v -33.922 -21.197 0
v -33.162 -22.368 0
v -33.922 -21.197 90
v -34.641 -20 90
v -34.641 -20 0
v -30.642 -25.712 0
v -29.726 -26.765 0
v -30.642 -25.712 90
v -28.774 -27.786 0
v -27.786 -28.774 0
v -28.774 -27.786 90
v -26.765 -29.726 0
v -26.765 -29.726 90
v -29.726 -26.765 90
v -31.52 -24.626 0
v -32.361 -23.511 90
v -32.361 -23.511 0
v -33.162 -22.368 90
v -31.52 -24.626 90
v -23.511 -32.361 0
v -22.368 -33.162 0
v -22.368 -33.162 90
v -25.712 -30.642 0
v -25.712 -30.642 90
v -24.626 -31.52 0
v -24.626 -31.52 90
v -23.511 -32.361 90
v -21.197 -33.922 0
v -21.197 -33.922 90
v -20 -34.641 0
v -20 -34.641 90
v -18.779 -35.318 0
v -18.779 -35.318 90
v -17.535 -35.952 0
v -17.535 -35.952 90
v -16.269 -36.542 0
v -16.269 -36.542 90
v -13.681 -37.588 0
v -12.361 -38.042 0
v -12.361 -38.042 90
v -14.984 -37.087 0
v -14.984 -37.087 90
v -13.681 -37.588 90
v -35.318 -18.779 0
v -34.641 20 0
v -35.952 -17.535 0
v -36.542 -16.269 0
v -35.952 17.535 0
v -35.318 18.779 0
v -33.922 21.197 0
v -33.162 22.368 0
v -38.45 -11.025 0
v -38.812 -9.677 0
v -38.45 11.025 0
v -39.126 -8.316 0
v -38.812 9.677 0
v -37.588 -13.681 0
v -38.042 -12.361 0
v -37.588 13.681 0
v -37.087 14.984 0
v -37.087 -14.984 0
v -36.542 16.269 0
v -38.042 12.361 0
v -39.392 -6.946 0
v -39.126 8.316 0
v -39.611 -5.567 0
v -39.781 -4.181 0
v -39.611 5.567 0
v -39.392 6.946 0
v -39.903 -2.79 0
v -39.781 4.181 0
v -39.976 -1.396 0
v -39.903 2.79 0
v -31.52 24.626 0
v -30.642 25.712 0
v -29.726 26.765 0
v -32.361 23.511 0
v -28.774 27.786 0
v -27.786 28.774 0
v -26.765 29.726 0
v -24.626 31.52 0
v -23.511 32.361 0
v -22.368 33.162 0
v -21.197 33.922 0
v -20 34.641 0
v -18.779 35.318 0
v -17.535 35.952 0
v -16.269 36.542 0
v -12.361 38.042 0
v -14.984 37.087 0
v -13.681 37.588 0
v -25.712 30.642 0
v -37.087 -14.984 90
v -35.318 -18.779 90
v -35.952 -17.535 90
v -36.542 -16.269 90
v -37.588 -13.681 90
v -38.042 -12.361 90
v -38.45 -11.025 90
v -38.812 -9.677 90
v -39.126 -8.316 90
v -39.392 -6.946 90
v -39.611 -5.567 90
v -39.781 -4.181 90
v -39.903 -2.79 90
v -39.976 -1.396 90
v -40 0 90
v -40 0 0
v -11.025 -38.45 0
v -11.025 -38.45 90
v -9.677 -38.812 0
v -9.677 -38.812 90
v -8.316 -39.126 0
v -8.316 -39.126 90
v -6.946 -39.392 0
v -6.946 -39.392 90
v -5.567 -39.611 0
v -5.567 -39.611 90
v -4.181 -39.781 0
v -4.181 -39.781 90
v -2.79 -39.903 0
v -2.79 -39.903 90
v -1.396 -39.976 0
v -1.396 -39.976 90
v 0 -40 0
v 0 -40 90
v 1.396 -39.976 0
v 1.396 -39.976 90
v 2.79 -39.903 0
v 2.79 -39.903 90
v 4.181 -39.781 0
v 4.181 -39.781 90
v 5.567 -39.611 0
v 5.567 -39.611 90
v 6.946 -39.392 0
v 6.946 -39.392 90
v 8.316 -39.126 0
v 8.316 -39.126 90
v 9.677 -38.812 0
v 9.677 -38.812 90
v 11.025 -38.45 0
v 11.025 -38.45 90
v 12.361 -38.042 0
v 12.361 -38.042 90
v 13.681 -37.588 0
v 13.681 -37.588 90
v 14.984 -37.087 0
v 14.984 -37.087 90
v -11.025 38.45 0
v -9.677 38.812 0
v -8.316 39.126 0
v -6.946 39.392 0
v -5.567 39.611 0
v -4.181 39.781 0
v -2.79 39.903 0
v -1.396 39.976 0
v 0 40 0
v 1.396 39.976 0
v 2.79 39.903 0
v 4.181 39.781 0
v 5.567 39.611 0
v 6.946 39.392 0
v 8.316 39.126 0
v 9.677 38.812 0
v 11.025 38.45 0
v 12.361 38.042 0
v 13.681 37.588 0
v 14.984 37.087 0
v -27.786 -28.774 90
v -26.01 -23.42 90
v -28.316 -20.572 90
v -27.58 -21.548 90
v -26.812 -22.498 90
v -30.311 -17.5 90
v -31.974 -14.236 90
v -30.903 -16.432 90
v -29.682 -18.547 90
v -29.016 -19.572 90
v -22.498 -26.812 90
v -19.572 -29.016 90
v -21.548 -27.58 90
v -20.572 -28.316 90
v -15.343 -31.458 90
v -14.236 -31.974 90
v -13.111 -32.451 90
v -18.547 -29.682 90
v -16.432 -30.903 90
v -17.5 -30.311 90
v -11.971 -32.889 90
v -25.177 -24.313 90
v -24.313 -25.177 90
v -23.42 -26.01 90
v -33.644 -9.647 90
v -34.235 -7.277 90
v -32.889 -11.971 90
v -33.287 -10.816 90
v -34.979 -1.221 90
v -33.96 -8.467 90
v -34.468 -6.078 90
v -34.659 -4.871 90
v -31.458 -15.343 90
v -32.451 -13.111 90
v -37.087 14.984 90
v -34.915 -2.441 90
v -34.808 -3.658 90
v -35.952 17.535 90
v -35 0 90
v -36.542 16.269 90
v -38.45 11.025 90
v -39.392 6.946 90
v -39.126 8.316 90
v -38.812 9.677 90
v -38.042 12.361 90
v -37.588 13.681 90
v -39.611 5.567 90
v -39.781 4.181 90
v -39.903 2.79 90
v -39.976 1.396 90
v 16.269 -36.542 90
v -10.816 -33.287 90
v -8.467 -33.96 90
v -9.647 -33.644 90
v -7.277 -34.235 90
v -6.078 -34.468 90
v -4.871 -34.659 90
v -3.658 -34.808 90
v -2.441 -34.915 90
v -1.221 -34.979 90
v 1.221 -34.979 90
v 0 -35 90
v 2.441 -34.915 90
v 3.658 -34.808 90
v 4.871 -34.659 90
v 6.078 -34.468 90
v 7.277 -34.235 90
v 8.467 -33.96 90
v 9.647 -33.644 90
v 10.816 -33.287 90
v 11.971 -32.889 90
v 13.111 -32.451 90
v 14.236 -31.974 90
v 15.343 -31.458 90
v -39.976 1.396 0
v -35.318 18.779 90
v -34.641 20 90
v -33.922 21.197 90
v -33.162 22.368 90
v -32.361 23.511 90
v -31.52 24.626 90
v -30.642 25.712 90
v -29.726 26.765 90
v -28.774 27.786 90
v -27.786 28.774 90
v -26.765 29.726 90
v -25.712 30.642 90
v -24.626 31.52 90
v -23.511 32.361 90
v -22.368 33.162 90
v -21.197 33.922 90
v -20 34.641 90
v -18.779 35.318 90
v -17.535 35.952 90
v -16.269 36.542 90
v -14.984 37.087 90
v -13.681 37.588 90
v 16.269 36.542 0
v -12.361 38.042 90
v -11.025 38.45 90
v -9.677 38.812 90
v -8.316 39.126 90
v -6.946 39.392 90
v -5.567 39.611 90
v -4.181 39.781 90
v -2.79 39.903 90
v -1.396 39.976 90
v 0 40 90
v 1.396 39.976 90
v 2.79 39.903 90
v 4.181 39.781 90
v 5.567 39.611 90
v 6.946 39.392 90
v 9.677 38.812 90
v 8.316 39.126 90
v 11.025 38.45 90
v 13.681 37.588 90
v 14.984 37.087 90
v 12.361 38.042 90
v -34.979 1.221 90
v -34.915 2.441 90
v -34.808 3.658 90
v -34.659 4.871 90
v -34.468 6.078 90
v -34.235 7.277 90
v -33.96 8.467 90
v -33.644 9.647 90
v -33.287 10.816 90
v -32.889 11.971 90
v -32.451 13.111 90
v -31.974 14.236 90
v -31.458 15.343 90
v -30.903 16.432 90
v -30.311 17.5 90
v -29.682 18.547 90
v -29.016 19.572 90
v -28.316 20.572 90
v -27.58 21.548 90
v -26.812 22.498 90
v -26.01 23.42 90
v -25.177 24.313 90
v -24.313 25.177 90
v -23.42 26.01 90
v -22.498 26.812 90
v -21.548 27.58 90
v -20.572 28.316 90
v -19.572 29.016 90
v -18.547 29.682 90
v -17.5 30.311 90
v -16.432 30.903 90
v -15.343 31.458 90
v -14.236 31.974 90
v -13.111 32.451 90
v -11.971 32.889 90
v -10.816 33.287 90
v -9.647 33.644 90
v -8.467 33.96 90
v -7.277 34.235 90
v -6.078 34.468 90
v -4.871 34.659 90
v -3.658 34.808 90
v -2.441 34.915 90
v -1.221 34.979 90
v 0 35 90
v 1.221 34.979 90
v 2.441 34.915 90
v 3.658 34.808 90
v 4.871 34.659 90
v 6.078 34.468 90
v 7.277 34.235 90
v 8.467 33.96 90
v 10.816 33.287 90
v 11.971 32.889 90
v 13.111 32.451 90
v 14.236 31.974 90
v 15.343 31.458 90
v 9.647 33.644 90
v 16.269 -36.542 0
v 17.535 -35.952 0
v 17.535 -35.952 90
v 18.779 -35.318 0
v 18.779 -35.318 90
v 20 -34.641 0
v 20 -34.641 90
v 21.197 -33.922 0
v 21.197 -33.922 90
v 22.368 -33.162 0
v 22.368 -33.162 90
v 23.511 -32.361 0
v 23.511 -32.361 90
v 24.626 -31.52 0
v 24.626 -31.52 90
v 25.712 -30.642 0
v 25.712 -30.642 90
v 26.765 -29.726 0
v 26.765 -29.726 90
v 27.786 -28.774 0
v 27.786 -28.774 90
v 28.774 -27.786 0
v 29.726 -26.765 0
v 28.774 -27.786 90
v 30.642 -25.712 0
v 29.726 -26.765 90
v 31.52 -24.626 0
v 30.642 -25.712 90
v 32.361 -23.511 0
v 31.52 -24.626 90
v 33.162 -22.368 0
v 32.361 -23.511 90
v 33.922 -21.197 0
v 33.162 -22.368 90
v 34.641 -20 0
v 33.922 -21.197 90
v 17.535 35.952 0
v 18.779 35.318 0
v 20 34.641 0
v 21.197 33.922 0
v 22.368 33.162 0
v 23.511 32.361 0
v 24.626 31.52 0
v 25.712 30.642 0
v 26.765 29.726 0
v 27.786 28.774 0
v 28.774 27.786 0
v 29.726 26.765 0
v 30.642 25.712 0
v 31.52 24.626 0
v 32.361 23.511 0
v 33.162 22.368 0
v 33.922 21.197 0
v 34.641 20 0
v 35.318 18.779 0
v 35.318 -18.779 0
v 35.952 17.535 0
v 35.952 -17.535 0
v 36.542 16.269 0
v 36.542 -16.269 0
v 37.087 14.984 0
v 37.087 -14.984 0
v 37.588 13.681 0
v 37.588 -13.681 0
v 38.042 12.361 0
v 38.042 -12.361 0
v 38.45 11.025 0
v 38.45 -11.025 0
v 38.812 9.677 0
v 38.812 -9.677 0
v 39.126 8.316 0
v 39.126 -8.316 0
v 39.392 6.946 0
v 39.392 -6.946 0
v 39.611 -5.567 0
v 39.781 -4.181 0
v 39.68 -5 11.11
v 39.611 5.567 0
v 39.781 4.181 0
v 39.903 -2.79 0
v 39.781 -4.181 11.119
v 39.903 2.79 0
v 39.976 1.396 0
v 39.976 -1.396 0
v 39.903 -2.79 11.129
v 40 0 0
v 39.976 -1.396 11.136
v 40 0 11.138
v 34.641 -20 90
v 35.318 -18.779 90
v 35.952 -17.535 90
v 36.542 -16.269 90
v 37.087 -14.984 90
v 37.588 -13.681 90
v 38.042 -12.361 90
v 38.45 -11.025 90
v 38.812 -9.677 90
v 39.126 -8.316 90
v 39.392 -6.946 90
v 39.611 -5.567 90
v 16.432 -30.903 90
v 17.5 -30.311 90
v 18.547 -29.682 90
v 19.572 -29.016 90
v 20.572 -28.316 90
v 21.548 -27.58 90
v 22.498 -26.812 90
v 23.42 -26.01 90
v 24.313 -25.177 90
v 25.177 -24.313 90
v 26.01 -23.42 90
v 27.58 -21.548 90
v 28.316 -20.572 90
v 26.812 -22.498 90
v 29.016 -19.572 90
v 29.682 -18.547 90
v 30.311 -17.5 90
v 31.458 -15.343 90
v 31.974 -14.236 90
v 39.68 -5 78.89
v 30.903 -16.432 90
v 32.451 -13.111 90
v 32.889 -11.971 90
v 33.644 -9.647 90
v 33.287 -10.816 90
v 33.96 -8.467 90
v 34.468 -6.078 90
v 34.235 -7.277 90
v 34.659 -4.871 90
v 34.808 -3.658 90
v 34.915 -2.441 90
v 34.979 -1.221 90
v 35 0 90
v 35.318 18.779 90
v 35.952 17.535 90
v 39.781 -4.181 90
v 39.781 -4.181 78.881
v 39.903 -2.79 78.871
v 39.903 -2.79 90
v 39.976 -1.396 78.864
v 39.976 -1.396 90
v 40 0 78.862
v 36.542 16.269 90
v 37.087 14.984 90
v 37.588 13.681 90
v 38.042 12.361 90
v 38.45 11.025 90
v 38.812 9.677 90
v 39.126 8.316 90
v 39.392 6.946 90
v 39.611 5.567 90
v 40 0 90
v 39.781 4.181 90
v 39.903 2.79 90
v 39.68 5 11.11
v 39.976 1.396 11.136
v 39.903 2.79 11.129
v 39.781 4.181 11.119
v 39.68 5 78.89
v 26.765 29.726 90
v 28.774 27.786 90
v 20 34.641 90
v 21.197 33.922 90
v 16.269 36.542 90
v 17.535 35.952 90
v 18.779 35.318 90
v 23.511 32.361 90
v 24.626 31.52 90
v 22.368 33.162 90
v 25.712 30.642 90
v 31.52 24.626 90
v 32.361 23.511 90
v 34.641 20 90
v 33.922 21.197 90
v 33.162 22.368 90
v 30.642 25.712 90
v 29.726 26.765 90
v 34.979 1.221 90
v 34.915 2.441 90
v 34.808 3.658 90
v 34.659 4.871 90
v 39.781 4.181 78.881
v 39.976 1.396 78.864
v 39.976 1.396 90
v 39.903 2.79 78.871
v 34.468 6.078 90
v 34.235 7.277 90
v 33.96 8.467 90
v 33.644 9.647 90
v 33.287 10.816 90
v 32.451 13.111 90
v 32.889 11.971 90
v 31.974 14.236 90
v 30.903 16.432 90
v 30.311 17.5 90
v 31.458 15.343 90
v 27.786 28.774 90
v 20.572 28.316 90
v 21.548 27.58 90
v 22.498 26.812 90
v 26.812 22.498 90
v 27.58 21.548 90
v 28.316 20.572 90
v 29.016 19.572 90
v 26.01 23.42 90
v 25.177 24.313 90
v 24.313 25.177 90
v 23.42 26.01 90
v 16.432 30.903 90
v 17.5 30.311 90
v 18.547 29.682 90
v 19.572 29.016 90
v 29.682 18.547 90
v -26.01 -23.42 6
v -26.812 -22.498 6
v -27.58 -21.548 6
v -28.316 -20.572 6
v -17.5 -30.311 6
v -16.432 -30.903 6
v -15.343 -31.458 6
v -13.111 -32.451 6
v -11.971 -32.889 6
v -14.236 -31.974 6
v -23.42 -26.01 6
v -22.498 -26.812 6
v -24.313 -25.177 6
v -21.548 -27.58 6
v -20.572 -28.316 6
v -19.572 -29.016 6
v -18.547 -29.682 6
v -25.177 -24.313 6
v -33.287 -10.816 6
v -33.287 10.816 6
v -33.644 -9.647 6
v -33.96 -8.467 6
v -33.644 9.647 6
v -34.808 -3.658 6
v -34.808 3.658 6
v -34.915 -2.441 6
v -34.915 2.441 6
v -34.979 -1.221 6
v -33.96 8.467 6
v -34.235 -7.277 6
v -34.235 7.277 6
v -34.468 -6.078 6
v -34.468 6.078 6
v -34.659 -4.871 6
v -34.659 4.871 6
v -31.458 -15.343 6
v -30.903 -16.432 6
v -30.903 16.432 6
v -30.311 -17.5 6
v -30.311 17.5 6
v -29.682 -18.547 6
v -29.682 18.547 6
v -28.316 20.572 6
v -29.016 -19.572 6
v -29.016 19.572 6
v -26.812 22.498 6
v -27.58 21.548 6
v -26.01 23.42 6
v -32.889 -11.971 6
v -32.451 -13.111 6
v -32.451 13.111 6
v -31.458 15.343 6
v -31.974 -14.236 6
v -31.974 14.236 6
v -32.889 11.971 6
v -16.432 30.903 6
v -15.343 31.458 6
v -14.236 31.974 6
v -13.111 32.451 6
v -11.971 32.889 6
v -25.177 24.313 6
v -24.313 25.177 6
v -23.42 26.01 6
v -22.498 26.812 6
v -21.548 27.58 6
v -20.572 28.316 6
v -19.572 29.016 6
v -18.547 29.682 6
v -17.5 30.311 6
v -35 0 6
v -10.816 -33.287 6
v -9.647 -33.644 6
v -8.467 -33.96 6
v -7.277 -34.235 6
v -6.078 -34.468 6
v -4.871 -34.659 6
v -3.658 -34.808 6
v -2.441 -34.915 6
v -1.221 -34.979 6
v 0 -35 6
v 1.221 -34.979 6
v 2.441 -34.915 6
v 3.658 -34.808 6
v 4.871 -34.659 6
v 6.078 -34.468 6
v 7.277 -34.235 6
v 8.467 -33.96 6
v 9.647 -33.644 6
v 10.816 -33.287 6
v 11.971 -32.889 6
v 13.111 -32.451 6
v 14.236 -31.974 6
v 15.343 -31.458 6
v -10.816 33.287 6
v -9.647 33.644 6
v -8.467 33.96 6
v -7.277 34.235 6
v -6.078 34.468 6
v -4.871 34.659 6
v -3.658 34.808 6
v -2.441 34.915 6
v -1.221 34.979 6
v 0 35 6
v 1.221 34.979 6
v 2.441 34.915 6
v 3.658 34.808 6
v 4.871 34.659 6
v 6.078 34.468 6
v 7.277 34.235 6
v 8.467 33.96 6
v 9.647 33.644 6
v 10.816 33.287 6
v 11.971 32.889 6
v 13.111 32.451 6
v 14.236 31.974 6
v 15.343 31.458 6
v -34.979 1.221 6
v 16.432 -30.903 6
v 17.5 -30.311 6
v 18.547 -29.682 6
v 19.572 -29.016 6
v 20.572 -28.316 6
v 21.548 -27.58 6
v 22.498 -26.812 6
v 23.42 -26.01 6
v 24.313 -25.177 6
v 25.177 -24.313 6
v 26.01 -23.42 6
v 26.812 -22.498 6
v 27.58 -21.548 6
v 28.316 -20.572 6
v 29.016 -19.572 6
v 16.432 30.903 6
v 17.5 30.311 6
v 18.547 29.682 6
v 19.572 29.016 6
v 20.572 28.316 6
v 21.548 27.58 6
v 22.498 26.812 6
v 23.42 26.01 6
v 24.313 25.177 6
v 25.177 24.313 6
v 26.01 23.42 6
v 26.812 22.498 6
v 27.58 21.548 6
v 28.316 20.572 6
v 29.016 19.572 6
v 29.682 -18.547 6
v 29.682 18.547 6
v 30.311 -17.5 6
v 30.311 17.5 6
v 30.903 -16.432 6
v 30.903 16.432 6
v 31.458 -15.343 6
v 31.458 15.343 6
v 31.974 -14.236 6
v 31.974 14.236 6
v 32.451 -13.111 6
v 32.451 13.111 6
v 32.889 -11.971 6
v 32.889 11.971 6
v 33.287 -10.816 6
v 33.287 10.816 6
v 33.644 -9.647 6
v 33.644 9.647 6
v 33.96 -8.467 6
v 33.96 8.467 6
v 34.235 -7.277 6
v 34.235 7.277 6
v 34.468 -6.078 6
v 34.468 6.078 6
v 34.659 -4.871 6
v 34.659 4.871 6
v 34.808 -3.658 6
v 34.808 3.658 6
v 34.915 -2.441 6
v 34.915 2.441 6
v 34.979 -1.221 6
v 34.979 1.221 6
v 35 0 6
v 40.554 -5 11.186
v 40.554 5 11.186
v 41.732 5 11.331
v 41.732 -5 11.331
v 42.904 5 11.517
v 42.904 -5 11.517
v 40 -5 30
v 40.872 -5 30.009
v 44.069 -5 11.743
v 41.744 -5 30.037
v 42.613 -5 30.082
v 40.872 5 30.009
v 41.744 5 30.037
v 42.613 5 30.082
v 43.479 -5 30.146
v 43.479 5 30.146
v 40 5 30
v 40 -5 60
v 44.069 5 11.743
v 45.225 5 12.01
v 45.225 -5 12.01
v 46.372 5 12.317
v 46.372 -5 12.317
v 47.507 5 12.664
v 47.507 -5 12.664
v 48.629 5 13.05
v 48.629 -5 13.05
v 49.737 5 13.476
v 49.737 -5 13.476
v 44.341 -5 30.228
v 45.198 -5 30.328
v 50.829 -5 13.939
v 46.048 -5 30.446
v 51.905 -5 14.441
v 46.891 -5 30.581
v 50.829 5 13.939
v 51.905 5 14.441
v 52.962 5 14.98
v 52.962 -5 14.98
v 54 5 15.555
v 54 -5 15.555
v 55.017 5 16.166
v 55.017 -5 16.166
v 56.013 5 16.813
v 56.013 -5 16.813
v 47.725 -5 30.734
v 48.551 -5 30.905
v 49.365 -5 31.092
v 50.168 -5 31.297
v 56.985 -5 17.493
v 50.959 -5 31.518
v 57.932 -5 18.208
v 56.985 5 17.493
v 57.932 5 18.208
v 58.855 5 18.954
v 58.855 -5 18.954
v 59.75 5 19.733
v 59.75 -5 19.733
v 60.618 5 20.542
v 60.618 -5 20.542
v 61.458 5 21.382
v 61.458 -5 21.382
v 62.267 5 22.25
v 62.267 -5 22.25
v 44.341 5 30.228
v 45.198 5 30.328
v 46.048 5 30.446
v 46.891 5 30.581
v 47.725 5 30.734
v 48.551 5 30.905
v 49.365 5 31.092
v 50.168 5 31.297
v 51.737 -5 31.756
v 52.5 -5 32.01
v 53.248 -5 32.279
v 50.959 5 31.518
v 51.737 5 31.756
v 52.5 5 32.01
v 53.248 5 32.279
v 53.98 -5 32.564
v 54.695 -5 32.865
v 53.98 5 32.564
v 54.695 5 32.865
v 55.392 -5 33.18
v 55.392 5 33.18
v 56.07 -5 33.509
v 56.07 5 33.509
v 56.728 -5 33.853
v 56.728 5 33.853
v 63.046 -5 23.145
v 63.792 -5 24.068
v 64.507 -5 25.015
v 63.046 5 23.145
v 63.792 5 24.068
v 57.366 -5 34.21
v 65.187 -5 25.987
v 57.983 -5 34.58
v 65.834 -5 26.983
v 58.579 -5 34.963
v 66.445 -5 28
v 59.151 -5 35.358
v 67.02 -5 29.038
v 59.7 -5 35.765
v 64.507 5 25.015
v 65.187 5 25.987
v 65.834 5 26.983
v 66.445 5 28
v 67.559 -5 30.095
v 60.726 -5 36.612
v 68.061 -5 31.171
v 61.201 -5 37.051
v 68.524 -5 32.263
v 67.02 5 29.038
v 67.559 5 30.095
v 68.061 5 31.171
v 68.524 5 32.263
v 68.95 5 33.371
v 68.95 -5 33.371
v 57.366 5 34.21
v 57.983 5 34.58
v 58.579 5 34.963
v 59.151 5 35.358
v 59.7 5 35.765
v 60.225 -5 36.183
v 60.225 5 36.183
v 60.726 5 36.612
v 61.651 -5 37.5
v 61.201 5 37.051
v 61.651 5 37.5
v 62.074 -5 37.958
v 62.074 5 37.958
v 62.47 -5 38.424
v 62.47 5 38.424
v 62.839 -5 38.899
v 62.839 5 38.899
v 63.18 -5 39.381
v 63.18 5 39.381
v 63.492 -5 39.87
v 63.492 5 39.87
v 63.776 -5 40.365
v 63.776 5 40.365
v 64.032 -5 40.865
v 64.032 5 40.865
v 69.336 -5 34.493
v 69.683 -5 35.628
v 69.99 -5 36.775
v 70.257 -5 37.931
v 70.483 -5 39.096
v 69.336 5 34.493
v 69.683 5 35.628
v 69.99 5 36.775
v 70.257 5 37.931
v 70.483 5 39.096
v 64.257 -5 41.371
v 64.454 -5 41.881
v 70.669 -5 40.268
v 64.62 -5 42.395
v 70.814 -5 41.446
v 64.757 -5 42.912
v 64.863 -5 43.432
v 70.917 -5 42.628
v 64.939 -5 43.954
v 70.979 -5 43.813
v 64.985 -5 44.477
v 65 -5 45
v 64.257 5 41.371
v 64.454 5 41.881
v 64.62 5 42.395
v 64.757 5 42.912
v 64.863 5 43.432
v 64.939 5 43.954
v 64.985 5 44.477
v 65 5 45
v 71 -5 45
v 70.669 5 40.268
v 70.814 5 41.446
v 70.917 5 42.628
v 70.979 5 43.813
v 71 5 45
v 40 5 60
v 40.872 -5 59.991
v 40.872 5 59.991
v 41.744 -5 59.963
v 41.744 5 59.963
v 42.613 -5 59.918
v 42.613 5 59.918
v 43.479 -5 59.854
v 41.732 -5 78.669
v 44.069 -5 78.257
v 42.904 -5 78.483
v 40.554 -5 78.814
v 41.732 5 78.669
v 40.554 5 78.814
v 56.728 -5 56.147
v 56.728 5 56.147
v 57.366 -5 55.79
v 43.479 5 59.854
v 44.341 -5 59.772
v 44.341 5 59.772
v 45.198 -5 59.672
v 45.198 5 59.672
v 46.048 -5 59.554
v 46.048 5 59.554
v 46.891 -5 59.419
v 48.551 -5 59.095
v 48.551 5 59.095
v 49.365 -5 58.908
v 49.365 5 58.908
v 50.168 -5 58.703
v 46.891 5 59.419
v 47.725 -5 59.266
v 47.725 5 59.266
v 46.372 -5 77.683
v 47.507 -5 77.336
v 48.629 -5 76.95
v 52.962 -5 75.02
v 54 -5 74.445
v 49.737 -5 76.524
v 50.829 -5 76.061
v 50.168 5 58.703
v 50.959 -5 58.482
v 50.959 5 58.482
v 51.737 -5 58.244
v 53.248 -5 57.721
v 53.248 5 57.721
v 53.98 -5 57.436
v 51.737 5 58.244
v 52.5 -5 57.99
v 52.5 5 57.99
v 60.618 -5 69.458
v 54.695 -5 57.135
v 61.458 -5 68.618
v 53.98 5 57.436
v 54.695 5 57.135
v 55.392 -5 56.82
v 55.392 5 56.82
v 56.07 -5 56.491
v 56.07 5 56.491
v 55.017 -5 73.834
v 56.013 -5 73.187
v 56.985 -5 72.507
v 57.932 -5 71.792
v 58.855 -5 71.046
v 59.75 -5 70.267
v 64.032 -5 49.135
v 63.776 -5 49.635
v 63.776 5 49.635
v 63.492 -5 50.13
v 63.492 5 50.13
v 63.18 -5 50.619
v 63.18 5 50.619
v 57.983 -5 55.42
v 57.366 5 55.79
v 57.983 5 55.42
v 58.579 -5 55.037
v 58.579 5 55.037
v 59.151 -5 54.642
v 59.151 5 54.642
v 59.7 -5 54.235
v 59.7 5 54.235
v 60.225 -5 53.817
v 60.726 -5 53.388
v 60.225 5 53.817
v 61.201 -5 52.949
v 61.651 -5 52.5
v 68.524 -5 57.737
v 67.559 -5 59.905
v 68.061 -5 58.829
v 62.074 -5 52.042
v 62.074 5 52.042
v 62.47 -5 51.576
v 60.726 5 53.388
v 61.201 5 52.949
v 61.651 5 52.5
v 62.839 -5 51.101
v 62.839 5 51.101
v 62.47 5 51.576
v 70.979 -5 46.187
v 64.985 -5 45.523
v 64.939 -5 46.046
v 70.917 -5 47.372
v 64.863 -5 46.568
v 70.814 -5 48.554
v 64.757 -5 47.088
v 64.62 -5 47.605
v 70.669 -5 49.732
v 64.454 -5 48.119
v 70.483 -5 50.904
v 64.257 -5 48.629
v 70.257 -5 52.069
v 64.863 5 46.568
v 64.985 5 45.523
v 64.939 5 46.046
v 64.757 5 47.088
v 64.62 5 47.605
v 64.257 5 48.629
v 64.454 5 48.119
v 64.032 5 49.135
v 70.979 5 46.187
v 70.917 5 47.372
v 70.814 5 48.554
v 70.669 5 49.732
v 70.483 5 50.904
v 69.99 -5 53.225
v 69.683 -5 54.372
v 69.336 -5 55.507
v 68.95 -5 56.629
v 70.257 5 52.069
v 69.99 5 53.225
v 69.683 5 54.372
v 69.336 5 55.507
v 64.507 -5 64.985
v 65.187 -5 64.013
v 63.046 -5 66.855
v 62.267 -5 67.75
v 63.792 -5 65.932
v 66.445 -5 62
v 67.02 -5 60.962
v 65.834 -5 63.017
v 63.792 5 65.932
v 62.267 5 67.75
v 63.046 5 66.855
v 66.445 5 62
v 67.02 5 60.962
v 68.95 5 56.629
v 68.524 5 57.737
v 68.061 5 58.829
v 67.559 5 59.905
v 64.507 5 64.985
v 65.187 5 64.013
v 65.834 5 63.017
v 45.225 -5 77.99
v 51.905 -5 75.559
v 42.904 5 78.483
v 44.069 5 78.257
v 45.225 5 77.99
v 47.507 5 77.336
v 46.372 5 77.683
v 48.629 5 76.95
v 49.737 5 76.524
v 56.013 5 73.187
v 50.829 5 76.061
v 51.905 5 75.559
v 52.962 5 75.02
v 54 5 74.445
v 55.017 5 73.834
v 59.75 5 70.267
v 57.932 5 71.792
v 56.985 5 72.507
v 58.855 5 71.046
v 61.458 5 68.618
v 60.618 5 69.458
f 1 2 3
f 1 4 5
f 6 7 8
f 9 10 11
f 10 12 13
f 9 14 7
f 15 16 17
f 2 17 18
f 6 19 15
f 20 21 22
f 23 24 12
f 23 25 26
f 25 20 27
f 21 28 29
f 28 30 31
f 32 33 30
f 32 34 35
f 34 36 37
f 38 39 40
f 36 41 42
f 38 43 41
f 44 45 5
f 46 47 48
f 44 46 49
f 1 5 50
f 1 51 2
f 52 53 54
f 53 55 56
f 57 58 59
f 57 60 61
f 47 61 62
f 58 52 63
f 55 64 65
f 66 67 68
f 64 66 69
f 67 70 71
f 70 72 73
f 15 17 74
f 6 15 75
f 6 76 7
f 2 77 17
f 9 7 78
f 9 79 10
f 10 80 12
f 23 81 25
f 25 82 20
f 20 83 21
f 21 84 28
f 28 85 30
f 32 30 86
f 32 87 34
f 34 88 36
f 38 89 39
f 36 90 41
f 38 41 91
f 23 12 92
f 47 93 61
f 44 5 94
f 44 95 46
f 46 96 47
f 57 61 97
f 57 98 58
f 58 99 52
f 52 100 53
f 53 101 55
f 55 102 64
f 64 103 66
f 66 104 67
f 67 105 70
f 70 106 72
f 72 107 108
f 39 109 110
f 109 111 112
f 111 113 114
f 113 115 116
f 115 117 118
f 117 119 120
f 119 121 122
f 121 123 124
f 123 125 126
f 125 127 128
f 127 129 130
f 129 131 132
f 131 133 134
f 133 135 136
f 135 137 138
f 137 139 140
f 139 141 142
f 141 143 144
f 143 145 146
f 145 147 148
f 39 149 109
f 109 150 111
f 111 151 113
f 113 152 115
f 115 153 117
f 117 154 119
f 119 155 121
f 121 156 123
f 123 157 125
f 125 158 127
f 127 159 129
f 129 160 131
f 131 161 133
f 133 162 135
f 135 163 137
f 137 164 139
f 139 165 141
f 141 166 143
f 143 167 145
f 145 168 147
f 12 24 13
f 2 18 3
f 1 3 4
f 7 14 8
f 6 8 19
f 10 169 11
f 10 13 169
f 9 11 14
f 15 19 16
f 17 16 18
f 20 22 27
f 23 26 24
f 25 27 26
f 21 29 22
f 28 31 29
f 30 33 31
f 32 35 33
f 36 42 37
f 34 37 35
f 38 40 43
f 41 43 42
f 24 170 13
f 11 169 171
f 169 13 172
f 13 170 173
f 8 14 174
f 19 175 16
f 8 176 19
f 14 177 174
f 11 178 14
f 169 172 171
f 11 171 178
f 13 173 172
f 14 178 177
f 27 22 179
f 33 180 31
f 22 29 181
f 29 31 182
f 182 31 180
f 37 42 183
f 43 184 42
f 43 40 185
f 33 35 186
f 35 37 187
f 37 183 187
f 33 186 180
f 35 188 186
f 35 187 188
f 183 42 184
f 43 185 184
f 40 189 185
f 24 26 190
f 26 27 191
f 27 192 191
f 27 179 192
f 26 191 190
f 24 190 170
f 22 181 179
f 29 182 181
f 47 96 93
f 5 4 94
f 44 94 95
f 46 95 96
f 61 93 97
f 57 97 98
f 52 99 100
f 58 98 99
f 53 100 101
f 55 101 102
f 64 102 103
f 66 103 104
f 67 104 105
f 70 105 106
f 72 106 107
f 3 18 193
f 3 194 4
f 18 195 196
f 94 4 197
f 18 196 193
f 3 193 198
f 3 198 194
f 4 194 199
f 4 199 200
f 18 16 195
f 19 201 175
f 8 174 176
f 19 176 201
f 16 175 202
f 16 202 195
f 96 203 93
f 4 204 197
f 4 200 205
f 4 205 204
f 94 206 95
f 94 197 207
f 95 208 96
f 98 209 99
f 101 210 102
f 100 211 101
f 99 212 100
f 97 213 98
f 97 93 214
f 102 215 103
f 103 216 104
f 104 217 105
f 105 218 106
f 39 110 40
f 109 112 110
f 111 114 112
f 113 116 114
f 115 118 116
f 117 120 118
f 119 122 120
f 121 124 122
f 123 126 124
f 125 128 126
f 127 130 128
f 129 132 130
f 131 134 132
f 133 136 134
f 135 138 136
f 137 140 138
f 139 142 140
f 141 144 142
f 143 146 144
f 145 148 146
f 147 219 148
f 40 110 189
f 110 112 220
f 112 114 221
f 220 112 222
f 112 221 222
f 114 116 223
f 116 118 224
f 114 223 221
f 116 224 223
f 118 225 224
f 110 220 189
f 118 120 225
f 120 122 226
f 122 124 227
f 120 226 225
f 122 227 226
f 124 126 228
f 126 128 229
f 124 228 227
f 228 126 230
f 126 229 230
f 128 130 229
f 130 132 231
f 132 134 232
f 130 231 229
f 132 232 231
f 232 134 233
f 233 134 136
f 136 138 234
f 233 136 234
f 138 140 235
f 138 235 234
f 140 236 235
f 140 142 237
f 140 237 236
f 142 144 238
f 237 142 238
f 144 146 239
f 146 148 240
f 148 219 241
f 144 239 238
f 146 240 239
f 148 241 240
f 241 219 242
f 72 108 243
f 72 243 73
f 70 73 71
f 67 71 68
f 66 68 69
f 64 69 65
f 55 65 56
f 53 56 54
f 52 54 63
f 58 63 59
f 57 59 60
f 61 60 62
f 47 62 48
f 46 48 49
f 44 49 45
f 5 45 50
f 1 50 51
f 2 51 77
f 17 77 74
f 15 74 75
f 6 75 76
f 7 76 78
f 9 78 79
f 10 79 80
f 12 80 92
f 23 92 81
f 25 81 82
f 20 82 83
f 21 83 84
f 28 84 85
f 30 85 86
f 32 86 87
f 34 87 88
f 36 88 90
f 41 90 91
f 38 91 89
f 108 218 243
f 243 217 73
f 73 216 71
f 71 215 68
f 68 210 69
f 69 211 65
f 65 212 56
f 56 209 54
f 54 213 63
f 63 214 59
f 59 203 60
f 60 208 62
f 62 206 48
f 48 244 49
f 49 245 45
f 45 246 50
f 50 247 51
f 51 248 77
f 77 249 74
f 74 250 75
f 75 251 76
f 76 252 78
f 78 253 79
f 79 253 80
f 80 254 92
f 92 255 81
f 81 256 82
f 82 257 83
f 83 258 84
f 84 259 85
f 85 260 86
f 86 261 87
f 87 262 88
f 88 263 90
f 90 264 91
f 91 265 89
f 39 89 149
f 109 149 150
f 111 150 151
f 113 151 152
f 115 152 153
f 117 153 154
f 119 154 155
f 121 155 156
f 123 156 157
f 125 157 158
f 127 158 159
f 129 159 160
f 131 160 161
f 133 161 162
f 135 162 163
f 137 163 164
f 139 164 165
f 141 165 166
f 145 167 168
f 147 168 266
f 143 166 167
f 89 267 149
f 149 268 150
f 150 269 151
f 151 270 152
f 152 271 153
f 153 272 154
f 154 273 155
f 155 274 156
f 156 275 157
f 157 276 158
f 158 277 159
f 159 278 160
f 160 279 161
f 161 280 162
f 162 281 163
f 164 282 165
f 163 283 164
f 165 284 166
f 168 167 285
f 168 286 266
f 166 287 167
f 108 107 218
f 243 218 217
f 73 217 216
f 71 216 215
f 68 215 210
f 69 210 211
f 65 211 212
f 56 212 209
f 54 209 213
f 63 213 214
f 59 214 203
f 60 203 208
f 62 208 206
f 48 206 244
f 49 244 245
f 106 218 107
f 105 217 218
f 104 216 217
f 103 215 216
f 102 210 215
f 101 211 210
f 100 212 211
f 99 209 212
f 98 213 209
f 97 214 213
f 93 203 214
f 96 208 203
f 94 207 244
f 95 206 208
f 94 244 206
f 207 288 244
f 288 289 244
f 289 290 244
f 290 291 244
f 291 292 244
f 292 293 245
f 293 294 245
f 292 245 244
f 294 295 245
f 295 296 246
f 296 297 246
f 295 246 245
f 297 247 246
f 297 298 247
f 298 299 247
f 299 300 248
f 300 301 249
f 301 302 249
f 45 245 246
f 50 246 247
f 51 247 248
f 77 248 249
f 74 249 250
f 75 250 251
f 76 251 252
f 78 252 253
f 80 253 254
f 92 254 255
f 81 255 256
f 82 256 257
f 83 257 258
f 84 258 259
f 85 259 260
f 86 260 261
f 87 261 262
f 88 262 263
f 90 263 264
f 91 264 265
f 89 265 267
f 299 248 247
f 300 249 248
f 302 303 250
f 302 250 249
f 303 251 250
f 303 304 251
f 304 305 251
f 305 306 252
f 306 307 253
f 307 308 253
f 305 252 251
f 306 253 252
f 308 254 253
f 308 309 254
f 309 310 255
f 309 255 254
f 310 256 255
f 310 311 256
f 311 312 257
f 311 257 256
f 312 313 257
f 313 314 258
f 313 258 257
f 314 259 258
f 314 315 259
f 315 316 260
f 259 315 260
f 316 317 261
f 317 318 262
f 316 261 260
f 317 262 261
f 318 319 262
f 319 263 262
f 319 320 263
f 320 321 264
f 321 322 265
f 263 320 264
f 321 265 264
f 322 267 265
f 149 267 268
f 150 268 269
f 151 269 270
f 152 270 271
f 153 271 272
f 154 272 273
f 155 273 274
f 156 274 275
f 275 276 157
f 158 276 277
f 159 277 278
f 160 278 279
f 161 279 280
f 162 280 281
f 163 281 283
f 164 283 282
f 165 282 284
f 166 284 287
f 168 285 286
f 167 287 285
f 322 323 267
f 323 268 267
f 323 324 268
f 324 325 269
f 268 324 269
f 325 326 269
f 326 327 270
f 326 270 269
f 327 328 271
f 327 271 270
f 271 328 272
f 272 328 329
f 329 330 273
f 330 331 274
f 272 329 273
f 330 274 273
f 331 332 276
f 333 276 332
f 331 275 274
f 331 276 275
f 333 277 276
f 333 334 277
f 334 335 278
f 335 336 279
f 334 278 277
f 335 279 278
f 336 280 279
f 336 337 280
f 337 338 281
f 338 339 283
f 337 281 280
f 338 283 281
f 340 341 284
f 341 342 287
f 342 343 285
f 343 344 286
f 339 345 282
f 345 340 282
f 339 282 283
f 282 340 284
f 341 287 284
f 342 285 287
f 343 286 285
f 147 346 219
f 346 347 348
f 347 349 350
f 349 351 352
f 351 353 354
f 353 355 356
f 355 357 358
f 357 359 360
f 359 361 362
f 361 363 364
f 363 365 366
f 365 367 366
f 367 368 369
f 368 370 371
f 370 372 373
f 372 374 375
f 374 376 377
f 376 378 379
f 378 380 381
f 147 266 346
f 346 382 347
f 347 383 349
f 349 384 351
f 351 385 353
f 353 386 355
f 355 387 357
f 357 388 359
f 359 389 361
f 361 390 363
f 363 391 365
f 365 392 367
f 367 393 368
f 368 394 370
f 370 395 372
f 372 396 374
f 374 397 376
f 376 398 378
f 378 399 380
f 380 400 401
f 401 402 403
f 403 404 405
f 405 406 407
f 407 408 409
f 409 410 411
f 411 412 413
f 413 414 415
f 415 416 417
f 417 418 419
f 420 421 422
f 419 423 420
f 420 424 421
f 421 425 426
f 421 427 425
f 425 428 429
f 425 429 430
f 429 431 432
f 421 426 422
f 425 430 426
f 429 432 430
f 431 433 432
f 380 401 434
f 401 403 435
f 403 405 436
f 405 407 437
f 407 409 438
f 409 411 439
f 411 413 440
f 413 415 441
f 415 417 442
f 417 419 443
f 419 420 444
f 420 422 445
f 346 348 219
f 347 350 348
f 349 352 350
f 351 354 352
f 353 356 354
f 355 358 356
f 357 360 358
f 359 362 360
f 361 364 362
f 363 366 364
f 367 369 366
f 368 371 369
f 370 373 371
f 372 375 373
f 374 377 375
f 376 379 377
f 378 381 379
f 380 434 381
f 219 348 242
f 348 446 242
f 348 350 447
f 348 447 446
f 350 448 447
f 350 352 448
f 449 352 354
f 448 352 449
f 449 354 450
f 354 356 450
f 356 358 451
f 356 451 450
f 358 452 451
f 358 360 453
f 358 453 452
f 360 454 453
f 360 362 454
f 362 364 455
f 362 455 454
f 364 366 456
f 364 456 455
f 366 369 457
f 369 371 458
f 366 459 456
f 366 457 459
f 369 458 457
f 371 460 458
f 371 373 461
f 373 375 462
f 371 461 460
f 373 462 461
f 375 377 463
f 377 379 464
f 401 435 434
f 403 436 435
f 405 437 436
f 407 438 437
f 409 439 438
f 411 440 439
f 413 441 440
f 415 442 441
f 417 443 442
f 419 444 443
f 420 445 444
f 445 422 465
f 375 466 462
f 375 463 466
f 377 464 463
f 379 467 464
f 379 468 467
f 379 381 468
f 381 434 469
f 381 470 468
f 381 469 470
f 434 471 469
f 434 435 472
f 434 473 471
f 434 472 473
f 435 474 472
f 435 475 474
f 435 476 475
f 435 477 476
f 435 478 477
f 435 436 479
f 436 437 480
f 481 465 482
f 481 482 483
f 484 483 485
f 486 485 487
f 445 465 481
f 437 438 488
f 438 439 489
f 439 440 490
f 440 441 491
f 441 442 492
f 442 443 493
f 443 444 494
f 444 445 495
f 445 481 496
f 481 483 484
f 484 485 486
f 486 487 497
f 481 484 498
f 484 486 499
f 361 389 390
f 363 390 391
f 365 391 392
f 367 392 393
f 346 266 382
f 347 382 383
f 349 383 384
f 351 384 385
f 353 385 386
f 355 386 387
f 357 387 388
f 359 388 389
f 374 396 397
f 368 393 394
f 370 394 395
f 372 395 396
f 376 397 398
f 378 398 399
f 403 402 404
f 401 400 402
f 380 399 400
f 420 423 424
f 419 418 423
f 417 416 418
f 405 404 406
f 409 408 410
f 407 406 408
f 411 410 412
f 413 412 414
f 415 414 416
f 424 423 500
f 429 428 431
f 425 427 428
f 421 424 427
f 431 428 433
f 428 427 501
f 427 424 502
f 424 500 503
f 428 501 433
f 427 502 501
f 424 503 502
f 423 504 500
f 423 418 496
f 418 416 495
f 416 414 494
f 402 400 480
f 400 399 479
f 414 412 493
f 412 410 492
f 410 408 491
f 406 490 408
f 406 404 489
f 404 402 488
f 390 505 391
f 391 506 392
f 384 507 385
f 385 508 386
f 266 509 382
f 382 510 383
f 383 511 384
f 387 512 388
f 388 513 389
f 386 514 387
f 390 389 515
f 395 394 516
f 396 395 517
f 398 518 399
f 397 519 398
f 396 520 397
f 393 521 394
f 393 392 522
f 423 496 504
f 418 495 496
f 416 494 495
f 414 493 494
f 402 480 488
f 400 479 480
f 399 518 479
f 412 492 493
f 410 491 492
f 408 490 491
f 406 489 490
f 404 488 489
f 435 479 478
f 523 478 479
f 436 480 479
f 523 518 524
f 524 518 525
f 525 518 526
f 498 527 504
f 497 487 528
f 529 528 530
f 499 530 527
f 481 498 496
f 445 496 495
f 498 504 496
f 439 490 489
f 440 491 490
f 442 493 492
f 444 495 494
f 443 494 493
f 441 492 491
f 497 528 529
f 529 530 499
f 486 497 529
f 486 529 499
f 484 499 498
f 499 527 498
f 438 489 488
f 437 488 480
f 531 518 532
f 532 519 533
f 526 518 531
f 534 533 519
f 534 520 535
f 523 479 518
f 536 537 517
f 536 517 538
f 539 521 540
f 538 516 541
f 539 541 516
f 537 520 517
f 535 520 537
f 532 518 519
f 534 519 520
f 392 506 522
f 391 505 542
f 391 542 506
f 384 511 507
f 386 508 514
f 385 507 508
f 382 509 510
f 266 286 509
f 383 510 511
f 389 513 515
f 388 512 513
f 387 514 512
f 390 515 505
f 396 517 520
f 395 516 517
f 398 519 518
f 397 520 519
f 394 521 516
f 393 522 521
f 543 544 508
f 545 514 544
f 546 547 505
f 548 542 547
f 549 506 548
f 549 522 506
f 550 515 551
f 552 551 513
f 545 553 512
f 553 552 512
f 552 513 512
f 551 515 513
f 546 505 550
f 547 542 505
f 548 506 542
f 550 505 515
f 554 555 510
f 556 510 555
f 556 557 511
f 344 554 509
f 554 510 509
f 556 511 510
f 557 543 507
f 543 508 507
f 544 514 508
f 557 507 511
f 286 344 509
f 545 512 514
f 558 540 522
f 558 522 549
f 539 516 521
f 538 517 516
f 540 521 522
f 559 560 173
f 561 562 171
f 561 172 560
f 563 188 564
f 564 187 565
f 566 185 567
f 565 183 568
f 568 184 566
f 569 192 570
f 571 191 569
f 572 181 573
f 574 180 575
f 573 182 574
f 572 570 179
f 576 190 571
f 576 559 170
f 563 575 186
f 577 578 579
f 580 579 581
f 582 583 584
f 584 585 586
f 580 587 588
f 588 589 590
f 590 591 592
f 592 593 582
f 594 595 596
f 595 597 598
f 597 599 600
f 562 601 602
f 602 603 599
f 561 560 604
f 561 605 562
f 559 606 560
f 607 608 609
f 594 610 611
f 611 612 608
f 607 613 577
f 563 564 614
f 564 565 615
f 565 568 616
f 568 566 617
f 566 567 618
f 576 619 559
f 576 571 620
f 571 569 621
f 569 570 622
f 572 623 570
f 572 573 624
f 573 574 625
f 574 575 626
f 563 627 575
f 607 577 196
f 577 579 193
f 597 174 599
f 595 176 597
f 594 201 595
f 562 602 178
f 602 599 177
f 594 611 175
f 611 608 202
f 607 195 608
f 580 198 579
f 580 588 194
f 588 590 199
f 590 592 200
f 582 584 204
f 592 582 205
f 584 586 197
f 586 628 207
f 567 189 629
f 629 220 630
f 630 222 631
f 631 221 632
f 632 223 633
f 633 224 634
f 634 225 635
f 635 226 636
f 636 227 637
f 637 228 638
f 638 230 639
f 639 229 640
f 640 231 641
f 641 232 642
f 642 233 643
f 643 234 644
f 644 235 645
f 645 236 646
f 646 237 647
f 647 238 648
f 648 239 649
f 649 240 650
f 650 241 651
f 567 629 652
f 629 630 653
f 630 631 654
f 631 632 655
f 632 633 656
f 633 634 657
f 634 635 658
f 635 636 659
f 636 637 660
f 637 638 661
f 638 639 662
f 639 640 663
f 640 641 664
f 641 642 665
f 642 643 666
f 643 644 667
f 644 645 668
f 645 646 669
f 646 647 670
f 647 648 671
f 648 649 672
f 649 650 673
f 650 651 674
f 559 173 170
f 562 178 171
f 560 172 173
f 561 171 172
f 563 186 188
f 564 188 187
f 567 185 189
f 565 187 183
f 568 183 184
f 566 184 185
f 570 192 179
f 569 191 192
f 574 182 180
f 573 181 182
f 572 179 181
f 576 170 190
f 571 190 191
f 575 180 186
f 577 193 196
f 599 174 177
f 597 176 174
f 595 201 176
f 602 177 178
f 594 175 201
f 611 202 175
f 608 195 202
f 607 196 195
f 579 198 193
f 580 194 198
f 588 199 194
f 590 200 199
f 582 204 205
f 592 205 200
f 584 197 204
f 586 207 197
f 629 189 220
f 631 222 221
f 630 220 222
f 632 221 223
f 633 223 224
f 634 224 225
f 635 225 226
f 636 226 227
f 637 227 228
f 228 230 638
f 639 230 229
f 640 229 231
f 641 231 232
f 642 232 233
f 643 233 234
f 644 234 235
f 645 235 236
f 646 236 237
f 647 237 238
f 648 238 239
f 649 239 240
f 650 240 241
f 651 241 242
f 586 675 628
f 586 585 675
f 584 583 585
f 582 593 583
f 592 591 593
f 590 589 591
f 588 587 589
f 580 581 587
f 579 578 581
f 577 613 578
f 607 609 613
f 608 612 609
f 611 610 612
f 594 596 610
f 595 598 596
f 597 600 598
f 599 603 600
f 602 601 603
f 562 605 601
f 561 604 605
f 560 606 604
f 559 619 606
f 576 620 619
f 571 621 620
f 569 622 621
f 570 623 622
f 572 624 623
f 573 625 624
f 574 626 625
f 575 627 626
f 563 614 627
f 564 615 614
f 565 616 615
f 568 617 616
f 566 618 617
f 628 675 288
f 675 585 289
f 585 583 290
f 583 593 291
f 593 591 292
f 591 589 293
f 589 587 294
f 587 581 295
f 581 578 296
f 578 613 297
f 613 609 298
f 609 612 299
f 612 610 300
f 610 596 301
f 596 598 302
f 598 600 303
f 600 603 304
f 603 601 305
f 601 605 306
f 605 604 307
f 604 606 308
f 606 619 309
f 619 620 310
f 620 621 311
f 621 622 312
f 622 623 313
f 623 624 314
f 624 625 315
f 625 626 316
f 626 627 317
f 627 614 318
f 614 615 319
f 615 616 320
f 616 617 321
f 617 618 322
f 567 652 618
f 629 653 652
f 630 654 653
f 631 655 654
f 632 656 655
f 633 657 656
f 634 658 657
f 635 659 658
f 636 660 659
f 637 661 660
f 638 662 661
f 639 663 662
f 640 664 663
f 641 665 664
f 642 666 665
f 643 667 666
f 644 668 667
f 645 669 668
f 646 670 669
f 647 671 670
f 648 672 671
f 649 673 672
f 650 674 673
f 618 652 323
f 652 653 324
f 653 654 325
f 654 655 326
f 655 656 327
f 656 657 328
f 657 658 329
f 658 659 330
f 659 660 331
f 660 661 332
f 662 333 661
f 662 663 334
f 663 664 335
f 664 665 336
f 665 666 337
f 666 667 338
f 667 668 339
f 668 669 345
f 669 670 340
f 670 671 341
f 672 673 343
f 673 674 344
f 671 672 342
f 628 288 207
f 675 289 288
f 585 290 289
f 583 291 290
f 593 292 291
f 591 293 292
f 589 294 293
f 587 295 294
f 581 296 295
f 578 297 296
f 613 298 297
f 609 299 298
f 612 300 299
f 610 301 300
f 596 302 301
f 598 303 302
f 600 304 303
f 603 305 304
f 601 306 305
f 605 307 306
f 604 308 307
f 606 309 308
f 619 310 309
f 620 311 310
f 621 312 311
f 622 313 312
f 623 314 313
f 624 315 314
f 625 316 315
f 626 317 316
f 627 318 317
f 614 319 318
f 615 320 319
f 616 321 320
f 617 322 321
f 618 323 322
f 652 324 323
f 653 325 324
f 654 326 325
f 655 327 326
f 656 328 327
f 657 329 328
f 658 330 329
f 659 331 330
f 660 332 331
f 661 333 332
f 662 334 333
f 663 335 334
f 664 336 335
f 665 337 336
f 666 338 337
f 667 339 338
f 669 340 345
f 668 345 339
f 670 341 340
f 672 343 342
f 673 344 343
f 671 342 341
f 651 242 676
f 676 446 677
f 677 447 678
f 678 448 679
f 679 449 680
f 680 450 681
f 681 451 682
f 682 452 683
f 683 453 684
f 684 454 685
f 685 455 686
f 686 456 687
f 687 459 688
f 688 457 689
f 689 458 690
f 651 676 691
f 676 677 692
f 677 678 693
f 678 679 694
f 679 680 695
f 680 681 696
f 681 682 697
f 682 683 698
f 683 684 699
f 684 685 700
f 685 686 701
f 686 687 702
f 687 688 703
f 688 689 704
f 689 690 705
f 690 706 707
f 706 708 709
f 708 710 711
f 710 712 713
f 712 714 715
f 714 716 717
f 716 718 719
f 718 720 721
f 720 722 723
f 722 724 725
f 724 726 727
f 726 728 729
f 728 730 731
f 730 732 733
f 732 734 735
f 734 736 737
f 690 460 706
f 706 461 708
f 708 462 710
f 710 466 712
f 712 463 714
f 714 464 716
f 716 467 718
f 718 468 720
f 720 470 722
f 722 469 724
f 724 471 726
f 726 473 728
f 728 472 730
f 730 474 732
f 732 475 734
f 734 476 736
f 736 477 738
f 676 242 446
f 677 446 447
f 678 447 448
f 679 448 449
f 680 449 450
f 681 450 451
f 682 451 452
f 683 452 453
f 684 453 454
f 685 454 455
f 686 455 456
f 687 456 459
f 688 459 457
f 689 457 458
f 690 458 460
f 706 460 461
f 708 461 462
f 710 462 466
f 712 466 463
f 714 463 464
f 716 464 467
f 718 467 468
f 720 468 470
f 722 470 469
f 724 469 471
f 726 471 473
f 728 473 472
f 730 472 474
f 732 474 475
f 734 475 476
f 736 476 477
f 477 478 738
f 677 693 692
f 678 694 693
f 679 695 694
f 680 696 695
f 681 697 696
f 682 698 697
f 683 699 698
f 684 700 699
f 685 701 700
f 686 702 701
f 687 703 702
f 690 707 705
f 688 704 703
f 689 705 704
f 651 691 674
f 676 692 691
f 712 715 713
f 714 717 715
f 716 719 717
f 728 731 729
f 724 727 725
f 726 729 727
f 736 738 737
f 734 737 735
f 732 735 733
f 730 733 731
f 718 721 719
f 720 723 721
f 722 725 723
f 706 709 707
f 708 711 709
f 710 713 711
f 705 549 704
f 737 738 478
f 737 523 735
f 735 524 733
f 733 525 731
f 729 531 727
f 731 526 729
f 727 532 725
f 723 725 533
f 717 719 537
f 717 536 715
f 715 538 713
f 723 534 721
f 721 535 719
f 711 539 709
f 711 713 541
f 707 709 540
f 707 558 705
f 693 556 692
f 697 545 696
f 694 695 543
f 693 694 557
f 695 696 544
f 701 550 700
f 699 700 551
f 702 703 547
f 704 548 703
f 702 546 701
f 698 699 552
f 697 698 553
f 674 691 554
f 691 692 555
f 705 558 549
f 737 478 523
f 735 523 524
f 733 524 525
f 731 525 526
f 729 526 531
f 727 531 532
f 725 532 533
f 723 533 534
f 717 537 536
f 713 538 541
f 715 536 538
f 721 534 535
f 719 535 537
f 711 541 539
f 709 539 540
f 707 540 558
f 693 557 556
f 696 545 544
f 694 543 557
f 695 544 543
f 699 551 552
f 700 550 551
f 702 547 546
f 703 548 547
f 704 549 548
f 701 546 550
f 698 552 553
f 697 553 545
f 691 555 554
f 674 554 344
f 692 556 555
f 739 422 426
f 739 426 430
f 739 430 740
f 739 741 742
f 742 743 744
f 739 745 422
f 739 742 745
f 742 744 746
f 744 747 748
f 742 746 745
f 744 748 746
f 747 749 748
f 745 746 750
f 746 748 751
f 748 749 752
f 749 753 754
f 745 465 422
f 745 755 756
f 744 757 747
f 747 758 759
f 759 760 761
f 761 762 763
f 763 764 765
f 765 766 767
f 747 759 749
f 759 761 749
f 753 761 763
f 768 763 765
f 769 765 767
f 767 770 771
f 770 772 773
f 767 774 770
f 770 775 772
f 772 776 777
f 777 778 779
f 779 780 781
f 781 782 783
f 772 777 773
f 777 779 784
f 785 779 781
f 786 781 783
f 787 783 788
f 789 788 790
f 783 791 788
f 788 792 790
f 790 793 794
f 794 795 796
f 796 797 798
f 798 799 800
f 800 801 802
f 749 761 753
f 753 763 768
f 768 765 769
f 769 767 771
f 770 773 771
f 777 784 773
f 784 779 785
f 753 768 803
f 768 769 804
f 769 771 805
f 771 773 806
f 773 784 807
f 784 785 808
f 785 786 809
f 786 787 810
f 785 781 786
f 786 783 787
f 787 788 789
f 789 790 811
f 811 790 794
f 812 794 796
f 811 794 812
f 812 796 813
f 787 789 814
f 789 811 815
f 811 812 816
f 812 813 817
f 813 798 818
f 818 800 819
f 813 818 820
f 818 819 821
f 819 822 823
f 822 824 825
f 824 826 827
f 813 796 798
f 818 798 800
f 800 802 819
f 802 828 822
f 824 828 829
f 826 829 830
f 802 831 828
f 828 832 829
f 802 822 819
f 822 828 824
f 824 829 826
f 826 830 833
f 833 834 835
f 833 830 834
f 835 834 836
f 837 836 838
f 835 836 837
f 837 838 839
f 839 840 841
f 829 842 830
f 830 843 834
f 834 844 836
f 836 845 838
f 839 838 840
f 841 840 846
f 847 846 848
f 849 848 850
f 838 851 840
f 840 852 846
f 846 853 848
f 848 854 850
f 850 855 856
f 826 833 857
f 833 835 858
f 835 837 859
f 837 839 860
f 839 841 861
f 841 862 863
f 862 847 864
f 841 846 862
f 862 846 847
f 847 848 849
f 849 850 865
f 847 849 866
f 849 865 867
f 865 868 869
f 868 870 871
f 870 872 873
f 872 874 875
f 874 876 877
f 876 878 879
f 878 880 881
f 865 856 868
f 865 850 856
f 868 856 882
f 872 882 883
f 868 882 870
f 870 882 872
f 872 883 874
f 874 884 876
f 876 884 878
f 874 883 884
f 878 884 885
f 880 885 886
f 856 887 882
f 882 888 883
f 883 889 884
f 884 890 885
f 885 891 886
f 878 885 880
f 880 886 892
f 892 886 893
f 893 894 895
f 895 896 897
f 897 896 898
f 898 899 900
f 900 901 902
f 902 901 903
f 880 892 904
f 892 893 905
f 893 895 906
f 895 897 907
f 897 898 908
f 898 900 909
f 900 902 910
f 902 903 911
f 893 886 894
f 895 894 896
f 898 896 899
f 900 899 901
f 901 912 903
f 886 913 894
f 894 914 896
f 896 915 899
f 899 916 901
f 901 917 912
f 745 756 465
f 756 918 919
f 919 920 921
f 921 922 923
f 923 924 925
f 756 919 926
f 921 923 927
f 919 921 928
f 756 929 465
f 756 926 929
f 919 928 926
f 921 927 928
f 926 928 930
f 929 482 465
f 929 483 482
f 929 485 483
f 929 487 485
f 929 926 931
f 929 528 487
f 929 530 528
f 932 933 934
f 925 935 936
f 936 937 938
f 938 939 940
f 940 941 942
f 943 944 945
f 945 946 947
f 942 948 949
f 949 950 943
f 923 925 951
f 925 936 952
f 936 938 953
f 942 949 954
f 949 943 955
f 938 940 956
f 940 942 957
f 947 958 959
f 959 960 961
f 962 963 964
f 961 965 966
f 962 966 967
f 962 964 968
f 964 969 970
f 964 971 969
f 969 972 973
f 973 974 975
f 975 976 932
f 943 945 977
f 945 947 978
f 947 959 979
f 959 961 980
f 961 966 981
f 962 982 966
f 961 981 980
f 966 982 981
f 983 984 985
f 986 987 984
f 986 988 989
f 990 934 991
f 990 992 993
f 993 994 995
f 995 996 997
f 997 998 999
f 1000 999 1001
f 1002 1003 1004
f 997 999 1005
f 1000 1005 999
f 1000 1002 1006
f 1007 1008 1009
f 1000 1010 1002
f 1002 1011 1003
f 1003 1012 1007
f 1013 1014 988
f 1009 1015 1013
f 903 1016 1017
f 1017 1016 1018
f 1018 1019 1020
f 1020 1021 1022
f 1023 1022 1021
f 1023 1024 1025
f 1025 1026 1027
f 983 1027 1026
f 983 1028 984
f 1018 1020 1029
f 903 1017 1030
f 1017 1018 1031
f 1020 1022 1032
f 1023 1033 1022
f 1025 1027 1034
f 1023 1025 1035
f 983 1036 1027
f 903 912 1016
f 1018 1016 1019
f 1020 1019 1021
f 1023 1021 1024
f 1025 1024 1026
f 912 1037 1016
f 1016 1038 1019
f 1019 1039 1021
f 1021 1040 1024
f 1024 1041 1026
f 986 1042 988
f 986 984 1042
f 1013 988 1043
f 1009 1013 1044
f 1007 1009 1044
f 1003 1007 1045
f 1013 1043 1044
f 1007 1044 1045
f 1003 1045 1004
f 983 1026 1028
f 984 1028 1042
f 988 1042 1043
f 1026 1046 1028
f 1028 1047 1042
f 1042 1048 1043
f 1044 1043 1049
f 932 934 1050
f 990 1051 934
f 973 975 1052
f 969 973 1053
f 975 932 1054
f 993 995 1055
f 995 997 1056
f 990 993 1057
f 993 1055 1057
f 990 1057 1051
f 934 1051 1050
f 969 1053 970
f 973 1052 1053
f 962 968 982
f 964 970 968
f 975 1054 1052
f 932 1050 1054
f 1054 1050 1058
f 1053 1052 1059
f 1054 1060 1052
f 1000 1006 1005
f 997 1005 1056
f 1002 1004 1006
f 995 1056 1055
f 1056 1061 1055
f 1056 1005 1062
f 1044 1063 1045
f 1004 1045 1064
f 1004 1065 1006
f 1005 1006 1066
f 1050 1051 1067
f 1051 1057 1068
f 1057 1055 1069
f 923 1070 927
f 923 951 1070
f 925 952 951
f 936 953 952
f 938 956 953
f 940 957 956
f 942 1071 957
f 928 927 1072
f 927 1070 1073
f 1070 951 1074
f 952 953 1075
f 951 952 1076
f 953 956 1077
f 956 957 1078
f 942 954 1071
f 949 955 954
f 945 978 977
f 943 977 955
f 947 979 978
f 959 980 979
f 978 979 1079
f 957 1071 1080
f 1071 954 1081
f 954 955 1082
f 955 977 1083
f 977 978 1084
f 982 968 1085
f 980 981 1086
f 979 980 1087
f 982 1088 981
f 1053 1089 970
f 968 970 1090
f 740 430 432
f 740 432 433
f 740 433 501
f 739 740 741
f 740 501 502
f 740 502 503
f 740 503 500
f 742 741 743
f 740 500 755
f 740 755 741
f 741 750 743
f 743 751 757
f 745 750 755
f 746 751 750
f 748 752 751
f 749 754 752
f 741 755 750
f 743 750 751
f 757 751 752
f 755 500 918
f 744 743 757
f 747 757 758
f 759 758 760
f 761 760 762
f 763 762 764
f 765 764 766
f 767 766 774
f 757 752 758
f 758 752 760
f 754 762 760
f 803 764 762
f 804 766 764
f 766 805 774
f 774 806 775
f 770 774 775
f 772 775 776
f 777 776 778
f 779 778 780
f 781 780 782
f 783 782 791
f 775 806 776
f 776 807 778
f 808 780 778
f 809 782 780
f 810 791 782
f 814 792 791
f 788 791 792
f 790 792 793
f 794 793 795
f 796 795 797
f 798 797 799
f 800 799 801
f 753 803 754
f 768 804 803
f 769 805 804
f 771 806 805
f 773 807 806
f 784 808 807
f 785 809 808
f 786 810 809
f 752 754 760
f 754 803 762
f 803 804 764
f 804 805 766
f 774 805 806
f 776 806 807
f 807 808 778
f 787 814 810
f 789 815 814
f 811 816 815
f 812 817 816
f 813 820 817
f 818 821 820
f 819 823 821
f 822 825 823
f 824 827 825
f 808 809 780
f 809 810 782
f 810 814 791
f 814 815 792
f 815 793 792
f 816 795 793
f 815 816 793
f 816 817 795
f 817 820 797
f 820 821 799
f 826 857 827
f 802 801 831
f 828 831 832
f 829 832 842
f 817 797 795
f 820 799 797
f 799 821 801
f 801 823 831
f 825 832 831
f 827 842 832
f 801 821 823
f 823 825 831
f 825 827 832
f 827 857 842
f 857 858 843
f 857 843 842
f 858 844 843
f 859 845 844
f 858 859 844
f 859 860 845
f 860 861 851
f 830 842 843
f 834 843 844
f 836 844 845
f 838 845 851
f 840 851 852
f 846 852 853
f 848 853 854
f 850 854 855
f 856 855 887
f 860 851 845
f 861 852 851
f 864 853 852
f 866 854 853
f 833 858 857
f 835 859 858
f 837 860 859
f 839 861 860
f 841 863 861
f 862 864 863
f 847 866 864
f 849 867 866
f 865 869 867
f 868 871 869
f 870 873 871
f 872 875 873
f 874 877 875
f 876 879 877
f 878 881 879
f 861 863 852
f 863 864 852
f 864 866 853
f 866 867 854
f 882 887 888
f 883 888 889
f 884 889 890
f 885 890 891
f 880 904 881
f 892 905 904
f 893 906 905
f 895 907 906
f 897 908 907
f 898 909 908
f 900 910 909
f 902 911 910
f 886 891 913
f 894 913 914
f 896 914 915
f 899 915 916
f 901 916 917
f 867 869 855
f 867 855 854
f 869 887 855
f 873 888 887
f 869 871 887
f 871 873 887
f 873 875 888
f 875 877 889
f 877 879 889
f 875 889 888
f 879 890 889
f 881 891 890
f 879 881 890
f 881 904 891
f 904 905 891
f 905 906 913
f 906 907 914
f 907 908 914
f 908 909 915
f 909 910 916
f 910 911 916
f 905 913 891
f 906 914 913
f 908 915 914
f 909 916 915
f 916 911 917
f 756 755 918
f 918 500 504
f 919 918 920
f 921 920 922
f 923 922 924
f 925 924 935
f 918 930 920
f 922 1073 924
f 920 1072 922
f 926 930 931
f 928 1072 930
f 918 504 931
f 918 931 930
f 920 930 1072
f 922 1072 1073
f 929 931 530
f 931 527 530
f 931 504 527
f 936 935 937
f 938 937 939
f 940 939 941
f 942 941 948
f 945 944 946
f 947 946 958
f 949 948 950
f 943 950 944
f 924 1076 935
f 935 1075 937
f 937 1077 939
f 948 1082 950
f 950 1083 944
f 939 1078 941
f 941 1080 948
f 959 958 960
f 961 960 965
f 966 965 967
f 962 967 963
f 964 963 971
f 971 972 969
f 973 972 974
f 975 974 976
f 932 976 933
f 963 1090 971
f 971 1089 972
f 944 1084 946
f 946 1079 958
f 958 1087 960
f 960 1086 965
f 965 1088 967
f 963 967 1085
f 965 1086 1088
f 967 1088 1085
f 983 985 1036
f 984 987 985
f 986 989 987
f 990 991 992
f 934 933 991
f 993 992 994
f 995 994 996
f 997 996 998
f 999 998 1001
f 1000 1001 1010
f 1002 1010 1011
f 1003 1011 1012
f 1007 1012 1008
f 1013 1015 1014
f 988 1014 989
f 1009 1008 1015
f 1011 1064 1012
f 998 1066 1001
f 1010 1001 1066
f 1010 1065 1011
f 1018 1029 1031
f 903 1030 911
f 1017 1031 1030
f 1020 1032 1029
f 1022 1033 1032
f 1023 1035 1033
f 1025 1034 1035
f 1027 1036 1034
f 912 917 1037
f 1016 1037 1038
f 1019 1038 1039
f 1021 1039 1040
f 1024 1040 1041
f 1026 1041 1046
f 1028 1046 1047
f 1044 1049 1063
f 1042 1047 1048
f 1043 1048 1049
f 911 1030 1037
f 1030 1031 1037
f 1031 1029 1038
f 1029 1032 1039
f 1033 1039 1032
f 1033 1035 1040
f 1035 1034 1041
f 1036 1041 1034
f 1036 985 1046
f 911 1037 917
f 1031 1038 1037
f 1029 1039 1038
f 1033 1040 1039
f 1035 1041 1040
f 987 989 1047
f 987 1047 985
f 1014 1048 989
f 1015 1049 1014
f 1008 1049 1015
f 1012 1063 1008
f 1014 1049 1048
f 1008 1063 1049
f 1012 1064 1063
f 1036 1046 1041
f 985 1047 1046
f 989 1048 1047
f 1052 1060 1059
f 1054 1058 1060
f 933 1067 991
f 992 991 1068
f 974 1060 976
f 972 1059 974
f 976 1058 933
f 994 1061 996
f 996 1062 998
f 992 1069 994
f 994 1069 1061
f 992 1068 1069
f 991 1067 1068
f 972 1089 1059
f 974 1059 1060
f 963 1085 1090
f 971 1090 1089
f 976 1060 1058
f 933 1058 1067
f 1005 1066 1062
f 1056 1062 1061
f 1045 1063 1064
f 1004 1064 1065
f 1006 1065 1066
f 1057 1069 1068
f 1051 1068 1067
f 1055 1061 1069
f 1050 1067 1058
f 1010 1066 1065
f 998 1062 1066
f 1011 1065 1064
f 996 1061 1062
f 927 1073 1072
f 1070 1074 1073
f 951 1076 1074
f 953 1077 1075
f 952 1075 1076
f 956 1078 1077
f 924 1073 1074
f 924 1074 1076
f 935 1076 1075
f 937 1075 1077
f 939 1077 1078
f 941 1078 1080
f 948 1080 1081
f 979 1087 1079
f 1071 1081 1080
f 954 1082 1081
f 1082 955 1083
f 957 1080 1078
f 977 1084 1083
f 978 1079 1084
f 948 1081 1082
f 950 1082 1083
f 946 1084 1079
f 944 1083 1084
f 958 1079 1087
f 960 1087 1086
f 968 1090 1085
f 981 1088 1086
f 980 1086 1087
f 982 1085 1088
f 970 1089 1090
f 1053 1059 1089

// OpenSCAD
$fn = 180;

outer_diameter = 80;
inner_diameter = 70;
mug_height = 90;
bottom_thickness = 6;

handle_inner_width = 25;
handle_inner_height = 30;
handle_depth = 10;
handle_outer_thickness = 6;
handle_overlap = 3;

eps = 0.05;

body_radius = outer_diameter / 2;
handle_center_z = mug_height / 2;
handle_root_x = body_radius - handle_overlap;

// 外側を半円にし、開口部の幅25mm・高さ30mmを確保する。
handle_outer_radius =
    handle_inner_width + handle_outer_thickness + handle_overlap;

module mug_body() {
    difference() {
        cylinder(d = outer_diameter, h = mug_height);

        translate([0, 0, bottom_thickness])
            cylinder(
                d = inner_diameter,
                h = mug_height - bottom_thickness + eps
            );
    }
}

module handle_profile() {
    difference() {
        // 本体側が直線、+X側が半円の外形。
        intersection() {
            translate([handle_root_x, handle_center_z])
                circle(r = handle_outer_radius);

            translate([
                handle_root_x,
                handle_center_z - handle_outer_radius - eps
            ])
                square([
                    handle_outer_radius + eps,
                    2 * handle_outer_radius + 2 * eps
                ]);
        }

        // 内側のD字開口：幅25mm、高さ30mm。
        intersection() {
            translate([body_radius, handle_center_z])
                scale([
                    handle_inner_width,
                    handle_inner_height / 2
                ])
                    circle(r = 1);

            translate([
                body_radius,
                handle_center_z - handle_inner_height / 2 - eps
            ])
                square([
                    handle_inner_width + eps,
                    handle_inner_height + 2 * eps
                ]);
        }
    }
}

module mug_handle() {
    // 2DのXY平面をXZ平面へ回し、Y方向に厚みを付ける。
    // 直線側を本体外周に3mm埋め込み、確実に接続する。
    rotate([90, 0, 0])
        linear_extrude(height = handle_depth, center = true, convexity = 10)
            handle_profile();
}

render(convexity = 10)
    union() {
        mug_body();
        mug_handle();
    }
